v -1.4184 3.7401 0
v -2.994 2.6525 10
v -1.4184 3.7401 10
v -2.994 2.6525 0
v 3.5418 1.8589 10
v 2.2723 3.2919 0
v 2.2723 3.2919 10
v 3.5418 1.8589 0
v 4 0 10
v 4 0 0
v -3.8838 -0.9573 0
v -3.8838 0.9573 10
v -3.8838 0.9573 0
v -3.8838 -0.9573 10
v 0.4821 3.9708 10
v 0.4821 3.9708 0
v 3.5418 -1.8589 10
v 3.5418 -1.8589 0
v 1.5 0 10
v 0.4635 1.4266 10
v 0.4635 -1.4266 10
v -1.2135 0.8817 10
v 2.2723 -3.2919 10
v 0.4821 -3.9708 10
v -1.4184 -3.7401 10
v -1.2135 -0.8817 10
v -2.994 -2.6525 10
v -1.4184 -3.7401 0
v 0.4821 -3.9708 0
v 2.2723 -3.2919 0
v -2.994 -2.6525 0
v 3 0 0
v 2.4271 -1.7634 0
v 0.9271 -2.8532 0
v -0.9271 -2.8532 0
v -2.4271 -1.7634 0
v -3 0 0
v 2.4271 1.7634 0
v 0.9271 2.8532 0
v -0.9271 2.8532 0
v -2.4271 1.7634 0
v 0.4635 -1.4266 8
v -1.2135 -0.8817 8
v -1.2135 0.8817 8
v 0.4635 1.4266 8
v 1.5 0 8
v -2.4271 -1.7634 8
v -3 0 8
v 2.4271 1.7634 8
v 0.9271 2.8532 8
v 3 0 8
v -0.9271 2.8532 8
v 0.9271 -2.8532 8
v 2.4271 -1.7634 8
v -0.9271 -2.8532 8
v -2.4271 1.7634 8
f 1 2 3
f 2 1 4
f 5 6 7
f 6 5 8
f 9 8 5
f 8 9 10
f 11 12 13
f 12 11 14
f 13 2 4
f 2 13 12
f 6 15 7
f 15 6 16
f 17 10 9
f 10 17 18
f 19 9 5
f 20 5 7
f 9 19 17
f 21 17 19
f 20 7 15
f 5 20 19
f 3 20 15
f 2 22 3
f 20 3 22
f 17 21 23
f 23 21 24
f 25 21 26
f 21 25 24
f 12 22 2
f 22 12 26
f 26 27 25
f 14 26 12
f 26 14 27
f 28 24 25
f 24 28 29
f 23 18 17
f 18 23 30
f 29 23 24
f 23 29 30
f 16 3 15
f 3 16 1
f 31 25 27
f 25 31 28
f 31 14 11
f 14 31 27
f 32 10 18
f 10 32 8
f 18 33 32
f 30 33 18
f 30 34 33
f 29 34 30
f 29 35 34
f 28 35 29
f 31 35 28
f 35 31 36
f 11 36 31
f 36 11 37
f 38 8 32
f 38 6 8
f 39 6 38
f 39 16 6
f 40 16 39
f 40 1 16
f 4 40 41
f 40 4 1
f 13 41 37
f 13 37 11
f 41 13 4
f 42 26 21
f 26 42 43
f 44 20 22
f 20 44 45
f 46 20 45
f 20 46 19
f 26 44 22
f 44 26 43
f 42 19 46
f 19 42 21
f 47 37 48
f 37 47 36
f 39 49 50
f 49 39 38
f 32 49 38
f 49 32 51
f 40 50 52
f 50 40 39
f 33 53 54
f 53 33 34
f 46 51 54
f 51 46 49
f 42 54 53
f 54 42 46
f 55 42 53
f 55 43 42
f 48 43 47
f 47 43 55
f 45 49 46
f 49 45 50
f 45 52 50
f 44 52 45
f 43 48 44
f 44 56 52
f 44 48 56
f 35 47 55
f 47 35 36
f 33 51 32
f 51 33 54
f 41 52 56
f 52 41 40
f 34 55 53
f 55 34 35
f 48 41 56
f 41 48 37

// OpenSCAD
//Stand-off for tube preamp when used with table perfboard support
//Jenny List 2024, 2025
//CC-BY-SA 4.0

module pcbStandOff(){
    difference(){
        cylinder(10,4,4); //The stand off itself
        cylinder(10,1.5,1.5); //width of screw thread
        cylinder(8,3,3); // Width of screw head
    }
}

pcbStandOff();
